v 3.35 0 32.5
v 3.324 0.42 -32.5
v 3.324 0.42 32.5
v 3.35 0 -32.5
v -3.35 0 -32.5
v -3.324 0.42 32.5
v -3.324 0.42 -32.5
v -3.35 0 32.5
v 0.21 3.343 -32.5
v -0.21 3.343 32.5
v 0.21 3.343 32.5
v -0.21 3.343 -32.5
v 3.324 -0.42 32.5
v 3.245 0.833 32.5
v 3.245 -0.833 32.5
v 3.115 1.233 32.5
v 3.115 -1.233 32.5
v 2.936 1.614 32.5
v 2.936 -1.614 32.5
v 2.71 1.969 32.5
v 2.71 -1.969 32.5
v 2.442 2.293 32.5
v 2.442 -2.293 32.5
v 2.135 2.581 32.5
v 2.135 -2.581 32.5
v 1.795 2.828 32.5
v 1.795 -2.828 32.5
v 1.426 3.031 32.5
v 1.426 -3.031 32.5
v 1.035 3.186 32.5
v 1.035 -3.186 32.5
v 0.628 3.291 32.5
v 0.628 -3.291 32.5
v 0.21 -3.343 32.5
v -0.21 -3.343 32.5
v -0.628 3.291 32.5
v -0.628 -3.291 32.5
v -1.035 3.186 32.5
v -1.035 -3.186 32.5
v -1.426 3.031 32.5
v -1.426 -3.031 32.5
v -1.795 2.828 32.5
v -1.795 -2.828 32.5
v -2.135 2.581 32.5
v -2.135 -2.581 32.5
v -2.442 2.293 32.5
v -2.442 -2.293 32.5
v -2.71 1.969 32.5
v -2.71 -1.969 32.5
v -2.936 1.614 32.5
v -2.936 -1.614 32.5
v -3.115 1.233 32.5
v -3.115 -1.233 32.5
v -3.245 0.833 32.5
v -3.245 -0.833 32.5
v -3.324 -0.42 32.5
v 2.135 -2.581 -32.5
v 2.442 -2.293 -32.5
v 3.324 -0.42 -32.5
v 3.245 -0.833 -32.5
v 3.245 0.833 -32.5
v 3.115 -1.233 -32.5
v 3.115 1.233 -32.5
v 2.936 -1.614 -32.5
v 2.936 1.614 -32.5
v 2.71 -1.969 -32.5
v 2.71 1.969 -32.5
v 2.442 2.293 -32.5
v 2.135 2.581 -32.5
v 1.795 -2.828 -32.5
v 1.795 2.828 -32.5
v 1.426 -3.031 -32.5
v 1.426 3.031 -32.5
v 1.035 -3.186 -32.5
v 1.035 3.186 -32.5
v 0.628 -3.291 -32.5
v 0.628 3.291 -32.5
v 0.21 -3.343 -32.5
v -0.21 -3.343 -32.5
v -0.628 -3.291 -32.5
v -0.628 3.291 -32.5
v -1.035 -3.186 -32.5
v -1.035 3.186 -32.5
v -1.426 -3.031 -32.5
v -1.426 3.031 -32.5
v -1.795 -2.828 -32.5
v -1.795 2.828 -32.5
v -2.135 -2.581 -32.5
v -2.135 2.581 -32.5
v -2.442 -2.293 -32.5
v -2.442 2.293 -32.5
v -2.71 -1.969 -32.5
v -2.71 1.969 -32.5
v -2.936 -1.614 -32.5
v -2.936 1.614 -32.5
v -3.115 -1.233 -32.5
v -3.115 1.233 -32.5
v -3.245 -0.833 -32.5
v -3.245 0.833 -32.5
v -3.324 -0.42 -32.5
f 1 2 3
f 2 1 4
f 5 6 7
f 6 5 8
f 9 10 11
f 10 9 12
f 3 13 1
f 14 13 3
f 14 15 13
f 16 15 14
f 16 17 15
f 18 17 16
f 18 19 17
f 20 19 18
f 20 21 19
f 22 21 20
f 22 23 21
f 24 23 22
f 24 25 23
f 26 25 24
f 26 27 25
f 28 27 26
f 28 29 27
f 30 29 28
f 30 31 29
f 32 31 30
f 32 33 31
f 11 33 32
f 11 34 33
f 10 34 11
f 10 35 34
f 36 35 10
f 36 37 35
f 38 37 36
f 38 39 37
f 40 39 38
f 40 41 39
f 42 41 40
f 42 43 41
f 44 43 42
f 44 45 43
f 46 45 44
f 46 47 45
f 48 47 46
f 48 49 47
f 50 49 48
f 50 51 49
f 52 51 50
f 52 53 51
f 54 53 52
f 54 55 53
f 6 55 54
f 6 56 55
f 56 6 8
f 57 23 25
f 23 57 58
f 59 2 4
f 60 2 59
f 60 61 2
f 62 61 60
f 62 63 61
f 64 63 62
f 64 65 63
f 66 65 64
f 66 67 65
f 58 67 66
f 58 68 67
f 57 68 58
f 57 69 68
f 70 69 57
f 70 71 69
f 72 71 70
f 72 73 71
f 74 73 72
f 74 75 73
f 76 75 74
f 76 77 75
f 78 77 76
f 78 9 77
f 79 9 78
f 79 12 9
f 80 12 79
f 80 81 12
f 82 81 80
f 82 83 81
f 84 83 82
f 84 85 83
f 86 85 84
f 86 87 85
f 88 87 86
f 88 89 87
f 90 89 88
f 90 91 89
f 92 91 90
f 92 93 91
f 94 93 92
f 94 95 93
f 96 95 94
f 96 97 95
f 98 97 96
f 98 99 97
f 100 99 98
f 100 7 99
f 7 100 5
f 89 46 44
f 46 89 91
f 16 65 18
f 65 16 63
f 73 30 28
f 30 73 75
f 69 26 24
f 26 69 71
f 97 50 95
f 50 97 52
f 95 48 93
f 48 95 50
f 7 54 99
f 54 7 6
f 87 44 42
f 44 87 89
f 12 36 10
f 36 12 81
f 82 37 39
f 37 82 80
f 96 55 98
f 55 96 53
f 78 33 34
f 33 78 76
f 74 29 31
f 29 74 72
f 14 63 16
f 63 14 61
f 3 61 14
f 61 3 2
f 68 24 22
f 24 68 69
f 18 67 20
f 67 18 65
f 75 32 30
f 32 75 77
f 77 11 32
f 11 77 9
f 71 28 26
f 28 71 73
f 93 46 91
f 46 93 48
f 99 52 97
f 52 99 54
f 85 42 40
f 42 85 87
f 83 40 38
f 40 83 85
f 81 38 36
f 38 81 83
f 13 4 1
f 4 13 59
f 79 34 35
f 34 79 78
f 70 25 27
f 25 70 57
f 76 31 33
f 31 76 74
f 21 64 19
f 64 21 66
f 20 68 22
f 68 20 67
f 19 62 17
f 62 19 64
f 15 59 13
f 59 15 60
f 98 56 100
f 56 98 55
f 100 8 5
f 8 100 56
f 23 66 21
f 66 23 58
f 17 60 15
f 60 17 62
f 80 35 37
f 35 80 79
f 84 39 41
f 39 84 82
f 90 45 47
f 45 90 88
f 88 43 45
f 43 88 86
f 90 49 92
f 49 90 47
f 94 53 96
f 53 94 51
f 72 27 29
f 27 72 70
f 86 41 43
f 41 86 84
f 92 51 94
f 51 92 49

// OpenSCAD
$fn = 50;


difference() {
	union() {
		translate(v = [0, 0, -32.5000000000]) {
			cylinder(h = 65, r = 3.3500000000);
		}
	}
	union() {
		translate(v = [0, 0, -100.0000000000]) {
			cylinder(h = 200, r = 0);
		}
	}
}
